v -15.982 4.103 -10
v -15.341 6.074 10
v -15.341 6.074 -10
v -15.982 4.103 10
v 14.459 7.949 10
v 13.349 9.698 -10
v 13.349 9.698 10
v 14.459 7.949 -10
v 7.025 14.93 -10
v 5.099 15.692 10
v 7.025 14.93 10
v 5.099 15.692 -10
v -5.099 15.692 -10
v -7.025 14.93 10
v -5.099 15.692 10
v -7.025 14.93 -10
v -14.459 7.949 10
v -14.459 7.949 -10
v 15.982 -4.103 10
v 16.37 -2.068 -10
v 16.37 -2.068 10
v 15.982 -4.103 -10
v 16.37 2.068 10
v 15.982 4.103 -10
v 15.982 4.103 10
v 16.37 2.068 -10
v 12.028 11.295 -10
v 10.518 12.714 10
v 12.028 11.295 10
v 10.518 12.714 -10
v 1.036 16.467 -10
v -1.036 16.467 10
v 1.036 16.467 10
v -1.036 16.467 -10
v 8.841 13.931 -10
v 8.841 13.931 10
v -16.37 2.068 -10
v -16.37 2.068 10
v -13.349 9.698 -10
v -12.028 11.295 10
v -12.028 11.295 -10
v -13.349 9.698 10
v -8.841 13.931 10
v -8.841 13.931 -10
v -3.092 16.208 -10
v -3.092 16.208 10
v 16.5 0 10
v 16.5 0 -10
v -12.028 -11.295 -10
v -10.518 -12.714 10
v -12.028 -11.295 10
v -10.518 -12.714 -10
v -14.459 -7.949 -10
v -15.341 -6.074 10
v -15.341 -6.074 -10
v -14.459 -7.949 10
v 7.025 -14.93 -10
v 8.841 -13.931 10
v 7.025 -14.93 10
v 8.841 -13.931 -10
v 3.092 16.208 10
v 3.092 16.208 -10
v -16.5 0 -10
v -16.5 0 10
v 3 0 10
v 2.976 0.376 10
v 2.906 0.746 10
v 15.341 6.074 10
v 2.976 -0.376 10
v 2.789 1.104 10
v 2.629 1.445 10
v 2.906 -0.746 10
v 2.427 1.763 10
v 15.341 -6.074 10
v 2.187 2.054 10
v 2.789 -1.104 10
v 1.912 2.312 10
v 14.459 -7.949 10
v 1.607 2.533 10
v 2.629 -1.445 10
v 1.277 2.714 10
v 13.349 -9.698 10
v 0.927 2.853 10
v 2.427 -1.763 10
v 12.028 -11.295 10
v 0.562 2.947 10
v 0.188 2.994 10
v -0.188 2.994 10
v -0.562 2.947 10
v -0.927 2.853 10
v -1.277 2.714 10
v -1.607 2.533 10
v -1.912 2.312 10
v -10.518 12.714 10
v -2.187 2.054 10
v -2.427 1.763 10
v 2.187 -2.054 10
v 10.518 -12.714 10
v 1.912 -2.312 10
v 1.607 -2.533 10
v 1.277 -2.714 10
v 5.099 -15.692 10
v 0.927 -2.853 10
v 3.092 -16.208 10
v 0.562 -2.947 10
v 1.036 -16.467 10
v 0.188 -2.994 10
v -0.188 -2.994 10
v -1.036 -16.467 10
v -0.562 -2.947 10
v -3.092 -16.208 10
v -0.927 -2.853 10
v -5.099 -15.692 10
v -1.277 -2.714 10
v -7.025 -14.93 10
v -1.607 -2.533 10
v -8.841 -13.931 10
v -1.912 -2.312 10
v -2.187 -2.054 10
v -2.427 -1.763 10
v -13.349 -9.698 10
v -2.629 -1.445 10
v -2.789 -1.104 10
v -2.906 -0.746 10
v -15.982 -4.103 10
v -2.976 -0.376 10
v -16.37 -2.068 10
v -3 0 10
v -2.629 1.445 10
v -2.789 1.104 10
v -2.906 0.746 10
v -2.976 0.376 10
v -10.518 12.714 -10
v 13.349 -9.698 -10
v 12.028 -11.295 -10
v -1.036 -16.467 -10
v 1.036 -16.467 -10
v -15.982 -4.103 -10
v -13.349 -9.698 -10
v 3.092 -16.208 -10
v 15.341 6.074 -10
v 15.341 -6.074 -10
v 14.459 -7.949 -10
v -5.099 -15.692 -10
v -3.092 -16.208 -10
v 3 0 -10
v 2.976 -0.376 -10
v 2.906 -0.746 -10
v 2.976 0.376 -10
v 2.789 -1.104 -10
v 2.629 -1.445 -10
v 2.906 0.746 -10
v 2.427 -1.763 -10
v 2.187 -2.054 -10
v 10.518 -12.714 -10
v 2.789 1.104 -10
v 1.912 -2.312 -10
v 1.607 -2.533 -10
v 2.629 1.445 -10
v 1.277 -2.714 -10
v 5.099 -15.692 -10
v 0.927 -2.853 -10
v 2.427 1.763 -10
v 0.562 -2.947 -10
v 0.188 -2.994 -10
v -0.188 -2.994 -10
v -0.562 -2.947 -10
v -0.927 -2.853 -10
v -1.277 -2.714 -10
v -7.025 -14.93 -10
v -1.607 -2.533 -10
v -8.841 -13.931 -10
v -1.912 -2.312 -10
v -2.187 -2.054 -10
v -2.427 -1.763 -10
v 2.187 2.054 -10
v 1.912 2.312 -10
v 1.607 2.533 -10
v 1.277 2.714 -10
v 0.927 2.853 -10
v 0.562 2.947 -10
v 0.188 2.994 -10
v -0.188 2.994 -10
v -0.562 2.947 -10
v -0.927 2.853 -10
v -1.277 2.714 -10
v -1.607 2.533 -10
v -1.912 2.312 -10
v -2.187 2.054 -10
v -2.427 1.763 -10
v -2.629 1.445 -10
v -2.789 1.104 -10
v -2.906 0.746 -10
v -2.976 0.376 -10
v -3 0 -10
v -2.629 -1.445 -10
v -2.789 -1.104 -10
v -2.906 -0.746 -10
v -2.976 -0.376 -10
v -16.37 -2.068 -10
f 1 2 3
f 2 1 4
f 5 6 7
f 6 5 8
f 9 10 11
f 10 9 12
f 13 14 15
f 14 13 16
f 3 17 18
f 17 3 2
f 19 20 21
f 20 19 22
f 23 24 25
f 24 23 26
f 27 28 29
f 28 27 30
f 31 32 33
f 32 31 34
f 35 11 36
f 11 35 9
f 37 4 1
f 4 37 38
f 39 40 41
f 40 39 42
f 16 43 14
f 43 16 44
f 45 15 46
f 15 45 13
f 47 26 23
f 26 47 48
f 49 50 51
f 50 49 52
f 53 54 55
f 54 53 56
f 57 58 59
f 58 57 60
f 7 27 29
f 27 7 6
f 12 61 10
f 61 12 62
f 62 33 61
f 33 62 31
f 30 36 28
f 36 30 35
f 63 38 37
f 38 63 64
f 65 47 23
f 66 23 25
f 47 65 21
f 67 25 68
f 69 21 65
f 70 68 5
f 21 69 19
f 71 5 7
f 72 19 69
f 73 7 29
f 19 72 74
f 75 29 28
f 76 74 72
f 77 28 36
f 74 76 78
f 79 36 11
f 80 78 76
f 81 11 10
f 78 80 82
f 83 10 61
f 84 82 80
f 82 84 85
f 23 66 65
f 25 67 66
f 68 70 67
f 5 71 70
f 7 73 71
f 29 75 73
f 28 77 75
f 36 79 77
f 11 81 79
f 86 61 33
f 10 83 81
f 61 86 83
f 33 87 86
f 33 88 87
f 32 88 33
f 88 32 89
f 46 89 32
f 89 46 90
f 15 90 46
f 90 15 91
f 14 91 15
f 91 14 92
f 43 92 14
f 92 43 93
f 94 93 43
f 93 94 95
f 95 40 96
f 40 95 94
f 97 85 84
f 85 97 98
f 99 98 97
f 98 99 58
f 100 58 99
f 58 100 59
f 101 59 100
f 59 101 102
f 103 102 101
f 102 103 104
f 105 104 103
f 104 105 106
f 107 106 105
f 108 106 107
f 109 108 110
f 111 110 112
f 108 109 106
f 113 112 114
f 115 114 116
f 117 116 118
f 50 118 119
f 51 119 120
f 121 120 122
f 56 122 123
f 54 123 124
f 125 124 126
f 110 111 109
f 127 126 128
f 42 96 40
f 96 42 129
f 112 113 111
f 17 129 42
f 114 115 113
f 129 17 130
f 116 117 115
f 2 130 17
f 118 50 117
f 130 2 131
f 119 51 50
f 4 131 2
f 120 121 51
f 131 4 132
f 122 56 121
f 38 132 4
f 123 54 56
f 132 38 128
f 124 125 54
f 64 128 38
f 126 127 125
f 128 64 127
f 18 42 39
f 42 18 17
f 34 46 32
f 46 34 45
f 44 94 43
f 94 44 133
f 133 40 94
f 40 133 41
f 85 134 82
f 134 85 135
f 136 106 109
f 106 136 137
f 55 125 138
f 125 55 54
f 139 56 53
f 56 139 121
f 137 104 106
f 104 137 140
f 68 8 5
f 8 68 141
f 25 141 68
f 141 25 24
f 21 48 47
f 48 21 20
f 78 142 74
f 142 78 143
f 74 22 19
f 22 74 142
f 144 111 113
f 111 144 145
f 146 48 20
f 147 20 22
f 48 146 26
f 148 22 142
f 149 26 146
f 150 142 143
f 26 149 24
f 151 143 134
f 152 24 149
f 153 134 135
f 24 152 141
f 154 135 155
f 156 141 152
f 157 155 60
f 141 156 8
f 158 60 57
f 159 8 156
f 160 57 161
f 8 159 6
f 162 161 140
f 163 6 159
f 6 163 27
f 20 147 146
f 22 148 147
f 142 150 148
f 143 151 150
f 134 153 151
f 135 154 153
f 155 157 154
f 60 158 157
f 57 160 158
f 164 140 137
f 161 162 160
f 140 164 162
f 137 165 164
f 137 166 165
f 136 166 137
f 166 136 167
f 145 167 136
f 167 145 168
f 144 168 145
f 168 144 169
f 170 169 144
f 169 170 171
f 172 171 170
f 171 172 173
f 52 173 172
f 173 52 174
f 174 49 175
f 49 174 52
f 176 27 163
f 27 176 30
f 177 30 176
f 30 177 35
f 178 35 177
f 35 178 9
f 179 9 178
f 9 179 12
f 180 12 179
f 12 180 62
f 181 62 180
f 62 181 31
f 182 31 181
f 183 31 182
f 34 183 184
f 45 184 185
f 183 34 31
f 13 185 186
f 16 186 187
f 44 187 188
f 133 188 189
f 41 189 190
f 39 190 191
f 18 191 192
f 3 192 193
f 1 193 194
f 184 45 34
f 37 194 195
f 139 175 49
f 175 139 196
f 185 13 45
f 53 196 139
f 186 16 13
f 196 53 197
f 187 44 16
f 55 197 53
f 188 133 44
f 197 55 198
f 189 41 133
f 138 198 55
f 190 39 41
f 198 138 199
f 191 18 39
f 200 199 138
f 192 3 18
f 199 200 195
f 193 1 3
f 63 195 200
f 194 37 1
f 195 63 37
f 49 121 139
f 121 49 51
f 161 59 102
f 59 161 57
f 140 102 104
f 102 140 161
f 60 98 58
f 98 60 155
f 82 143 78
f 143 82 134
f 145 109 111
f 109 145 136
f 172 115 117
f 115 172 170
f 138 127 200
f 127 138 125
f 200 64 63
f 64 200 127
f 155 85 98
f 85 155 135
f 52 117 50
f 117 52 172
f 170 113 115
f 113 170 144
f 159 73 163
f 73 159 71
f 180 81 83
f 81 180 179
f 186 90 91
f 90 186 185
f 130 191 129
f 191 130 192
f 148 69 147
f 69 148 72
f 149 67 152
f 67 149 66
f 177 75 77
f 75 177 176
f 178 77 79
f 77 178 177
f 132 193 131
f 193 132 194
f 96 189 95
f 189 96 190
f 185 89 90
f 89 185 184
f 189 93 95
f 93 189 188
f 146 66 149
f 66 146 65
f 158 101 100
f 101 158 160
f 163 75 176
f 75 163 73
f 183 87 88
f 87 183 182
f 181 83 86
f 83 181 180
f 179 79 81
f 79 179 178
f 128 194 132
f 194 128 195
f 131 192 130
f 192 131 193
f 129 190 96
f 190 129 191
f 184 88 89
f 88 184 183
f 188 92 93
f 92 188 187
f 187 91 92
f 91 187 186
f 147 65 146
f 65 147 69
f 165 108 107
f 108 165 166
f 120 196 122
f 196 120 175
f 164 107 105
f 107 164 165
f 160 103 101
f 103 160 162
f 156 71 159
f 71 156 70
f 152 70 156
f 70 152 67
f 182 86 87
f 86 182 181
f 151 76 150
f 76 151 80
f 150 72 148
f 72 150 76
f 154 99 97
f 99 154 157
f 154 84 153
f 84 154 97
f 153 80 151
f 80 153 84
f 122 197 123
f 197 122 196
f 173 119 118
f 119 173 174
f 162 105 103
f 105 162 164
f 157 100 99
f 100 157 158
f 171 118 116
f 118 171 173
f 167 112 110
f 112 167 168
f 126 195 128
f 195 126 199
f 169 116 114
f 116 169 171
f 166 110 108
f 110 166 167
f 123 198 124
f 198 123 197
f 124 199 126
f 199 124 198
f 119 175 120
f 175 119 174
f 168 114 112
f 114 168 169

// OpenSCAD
$fn = 50;


difference() {
	union() {
		translate(v = [0, 0, -10.0000000000]) {
			cylinder(h = 20, r = 16.5000000000);
		}
	}
	union() {
		translate(v = [0, 0, -100.0000000000]) {
			cylinder(h = 200, r = 3);
		}
	}
}
